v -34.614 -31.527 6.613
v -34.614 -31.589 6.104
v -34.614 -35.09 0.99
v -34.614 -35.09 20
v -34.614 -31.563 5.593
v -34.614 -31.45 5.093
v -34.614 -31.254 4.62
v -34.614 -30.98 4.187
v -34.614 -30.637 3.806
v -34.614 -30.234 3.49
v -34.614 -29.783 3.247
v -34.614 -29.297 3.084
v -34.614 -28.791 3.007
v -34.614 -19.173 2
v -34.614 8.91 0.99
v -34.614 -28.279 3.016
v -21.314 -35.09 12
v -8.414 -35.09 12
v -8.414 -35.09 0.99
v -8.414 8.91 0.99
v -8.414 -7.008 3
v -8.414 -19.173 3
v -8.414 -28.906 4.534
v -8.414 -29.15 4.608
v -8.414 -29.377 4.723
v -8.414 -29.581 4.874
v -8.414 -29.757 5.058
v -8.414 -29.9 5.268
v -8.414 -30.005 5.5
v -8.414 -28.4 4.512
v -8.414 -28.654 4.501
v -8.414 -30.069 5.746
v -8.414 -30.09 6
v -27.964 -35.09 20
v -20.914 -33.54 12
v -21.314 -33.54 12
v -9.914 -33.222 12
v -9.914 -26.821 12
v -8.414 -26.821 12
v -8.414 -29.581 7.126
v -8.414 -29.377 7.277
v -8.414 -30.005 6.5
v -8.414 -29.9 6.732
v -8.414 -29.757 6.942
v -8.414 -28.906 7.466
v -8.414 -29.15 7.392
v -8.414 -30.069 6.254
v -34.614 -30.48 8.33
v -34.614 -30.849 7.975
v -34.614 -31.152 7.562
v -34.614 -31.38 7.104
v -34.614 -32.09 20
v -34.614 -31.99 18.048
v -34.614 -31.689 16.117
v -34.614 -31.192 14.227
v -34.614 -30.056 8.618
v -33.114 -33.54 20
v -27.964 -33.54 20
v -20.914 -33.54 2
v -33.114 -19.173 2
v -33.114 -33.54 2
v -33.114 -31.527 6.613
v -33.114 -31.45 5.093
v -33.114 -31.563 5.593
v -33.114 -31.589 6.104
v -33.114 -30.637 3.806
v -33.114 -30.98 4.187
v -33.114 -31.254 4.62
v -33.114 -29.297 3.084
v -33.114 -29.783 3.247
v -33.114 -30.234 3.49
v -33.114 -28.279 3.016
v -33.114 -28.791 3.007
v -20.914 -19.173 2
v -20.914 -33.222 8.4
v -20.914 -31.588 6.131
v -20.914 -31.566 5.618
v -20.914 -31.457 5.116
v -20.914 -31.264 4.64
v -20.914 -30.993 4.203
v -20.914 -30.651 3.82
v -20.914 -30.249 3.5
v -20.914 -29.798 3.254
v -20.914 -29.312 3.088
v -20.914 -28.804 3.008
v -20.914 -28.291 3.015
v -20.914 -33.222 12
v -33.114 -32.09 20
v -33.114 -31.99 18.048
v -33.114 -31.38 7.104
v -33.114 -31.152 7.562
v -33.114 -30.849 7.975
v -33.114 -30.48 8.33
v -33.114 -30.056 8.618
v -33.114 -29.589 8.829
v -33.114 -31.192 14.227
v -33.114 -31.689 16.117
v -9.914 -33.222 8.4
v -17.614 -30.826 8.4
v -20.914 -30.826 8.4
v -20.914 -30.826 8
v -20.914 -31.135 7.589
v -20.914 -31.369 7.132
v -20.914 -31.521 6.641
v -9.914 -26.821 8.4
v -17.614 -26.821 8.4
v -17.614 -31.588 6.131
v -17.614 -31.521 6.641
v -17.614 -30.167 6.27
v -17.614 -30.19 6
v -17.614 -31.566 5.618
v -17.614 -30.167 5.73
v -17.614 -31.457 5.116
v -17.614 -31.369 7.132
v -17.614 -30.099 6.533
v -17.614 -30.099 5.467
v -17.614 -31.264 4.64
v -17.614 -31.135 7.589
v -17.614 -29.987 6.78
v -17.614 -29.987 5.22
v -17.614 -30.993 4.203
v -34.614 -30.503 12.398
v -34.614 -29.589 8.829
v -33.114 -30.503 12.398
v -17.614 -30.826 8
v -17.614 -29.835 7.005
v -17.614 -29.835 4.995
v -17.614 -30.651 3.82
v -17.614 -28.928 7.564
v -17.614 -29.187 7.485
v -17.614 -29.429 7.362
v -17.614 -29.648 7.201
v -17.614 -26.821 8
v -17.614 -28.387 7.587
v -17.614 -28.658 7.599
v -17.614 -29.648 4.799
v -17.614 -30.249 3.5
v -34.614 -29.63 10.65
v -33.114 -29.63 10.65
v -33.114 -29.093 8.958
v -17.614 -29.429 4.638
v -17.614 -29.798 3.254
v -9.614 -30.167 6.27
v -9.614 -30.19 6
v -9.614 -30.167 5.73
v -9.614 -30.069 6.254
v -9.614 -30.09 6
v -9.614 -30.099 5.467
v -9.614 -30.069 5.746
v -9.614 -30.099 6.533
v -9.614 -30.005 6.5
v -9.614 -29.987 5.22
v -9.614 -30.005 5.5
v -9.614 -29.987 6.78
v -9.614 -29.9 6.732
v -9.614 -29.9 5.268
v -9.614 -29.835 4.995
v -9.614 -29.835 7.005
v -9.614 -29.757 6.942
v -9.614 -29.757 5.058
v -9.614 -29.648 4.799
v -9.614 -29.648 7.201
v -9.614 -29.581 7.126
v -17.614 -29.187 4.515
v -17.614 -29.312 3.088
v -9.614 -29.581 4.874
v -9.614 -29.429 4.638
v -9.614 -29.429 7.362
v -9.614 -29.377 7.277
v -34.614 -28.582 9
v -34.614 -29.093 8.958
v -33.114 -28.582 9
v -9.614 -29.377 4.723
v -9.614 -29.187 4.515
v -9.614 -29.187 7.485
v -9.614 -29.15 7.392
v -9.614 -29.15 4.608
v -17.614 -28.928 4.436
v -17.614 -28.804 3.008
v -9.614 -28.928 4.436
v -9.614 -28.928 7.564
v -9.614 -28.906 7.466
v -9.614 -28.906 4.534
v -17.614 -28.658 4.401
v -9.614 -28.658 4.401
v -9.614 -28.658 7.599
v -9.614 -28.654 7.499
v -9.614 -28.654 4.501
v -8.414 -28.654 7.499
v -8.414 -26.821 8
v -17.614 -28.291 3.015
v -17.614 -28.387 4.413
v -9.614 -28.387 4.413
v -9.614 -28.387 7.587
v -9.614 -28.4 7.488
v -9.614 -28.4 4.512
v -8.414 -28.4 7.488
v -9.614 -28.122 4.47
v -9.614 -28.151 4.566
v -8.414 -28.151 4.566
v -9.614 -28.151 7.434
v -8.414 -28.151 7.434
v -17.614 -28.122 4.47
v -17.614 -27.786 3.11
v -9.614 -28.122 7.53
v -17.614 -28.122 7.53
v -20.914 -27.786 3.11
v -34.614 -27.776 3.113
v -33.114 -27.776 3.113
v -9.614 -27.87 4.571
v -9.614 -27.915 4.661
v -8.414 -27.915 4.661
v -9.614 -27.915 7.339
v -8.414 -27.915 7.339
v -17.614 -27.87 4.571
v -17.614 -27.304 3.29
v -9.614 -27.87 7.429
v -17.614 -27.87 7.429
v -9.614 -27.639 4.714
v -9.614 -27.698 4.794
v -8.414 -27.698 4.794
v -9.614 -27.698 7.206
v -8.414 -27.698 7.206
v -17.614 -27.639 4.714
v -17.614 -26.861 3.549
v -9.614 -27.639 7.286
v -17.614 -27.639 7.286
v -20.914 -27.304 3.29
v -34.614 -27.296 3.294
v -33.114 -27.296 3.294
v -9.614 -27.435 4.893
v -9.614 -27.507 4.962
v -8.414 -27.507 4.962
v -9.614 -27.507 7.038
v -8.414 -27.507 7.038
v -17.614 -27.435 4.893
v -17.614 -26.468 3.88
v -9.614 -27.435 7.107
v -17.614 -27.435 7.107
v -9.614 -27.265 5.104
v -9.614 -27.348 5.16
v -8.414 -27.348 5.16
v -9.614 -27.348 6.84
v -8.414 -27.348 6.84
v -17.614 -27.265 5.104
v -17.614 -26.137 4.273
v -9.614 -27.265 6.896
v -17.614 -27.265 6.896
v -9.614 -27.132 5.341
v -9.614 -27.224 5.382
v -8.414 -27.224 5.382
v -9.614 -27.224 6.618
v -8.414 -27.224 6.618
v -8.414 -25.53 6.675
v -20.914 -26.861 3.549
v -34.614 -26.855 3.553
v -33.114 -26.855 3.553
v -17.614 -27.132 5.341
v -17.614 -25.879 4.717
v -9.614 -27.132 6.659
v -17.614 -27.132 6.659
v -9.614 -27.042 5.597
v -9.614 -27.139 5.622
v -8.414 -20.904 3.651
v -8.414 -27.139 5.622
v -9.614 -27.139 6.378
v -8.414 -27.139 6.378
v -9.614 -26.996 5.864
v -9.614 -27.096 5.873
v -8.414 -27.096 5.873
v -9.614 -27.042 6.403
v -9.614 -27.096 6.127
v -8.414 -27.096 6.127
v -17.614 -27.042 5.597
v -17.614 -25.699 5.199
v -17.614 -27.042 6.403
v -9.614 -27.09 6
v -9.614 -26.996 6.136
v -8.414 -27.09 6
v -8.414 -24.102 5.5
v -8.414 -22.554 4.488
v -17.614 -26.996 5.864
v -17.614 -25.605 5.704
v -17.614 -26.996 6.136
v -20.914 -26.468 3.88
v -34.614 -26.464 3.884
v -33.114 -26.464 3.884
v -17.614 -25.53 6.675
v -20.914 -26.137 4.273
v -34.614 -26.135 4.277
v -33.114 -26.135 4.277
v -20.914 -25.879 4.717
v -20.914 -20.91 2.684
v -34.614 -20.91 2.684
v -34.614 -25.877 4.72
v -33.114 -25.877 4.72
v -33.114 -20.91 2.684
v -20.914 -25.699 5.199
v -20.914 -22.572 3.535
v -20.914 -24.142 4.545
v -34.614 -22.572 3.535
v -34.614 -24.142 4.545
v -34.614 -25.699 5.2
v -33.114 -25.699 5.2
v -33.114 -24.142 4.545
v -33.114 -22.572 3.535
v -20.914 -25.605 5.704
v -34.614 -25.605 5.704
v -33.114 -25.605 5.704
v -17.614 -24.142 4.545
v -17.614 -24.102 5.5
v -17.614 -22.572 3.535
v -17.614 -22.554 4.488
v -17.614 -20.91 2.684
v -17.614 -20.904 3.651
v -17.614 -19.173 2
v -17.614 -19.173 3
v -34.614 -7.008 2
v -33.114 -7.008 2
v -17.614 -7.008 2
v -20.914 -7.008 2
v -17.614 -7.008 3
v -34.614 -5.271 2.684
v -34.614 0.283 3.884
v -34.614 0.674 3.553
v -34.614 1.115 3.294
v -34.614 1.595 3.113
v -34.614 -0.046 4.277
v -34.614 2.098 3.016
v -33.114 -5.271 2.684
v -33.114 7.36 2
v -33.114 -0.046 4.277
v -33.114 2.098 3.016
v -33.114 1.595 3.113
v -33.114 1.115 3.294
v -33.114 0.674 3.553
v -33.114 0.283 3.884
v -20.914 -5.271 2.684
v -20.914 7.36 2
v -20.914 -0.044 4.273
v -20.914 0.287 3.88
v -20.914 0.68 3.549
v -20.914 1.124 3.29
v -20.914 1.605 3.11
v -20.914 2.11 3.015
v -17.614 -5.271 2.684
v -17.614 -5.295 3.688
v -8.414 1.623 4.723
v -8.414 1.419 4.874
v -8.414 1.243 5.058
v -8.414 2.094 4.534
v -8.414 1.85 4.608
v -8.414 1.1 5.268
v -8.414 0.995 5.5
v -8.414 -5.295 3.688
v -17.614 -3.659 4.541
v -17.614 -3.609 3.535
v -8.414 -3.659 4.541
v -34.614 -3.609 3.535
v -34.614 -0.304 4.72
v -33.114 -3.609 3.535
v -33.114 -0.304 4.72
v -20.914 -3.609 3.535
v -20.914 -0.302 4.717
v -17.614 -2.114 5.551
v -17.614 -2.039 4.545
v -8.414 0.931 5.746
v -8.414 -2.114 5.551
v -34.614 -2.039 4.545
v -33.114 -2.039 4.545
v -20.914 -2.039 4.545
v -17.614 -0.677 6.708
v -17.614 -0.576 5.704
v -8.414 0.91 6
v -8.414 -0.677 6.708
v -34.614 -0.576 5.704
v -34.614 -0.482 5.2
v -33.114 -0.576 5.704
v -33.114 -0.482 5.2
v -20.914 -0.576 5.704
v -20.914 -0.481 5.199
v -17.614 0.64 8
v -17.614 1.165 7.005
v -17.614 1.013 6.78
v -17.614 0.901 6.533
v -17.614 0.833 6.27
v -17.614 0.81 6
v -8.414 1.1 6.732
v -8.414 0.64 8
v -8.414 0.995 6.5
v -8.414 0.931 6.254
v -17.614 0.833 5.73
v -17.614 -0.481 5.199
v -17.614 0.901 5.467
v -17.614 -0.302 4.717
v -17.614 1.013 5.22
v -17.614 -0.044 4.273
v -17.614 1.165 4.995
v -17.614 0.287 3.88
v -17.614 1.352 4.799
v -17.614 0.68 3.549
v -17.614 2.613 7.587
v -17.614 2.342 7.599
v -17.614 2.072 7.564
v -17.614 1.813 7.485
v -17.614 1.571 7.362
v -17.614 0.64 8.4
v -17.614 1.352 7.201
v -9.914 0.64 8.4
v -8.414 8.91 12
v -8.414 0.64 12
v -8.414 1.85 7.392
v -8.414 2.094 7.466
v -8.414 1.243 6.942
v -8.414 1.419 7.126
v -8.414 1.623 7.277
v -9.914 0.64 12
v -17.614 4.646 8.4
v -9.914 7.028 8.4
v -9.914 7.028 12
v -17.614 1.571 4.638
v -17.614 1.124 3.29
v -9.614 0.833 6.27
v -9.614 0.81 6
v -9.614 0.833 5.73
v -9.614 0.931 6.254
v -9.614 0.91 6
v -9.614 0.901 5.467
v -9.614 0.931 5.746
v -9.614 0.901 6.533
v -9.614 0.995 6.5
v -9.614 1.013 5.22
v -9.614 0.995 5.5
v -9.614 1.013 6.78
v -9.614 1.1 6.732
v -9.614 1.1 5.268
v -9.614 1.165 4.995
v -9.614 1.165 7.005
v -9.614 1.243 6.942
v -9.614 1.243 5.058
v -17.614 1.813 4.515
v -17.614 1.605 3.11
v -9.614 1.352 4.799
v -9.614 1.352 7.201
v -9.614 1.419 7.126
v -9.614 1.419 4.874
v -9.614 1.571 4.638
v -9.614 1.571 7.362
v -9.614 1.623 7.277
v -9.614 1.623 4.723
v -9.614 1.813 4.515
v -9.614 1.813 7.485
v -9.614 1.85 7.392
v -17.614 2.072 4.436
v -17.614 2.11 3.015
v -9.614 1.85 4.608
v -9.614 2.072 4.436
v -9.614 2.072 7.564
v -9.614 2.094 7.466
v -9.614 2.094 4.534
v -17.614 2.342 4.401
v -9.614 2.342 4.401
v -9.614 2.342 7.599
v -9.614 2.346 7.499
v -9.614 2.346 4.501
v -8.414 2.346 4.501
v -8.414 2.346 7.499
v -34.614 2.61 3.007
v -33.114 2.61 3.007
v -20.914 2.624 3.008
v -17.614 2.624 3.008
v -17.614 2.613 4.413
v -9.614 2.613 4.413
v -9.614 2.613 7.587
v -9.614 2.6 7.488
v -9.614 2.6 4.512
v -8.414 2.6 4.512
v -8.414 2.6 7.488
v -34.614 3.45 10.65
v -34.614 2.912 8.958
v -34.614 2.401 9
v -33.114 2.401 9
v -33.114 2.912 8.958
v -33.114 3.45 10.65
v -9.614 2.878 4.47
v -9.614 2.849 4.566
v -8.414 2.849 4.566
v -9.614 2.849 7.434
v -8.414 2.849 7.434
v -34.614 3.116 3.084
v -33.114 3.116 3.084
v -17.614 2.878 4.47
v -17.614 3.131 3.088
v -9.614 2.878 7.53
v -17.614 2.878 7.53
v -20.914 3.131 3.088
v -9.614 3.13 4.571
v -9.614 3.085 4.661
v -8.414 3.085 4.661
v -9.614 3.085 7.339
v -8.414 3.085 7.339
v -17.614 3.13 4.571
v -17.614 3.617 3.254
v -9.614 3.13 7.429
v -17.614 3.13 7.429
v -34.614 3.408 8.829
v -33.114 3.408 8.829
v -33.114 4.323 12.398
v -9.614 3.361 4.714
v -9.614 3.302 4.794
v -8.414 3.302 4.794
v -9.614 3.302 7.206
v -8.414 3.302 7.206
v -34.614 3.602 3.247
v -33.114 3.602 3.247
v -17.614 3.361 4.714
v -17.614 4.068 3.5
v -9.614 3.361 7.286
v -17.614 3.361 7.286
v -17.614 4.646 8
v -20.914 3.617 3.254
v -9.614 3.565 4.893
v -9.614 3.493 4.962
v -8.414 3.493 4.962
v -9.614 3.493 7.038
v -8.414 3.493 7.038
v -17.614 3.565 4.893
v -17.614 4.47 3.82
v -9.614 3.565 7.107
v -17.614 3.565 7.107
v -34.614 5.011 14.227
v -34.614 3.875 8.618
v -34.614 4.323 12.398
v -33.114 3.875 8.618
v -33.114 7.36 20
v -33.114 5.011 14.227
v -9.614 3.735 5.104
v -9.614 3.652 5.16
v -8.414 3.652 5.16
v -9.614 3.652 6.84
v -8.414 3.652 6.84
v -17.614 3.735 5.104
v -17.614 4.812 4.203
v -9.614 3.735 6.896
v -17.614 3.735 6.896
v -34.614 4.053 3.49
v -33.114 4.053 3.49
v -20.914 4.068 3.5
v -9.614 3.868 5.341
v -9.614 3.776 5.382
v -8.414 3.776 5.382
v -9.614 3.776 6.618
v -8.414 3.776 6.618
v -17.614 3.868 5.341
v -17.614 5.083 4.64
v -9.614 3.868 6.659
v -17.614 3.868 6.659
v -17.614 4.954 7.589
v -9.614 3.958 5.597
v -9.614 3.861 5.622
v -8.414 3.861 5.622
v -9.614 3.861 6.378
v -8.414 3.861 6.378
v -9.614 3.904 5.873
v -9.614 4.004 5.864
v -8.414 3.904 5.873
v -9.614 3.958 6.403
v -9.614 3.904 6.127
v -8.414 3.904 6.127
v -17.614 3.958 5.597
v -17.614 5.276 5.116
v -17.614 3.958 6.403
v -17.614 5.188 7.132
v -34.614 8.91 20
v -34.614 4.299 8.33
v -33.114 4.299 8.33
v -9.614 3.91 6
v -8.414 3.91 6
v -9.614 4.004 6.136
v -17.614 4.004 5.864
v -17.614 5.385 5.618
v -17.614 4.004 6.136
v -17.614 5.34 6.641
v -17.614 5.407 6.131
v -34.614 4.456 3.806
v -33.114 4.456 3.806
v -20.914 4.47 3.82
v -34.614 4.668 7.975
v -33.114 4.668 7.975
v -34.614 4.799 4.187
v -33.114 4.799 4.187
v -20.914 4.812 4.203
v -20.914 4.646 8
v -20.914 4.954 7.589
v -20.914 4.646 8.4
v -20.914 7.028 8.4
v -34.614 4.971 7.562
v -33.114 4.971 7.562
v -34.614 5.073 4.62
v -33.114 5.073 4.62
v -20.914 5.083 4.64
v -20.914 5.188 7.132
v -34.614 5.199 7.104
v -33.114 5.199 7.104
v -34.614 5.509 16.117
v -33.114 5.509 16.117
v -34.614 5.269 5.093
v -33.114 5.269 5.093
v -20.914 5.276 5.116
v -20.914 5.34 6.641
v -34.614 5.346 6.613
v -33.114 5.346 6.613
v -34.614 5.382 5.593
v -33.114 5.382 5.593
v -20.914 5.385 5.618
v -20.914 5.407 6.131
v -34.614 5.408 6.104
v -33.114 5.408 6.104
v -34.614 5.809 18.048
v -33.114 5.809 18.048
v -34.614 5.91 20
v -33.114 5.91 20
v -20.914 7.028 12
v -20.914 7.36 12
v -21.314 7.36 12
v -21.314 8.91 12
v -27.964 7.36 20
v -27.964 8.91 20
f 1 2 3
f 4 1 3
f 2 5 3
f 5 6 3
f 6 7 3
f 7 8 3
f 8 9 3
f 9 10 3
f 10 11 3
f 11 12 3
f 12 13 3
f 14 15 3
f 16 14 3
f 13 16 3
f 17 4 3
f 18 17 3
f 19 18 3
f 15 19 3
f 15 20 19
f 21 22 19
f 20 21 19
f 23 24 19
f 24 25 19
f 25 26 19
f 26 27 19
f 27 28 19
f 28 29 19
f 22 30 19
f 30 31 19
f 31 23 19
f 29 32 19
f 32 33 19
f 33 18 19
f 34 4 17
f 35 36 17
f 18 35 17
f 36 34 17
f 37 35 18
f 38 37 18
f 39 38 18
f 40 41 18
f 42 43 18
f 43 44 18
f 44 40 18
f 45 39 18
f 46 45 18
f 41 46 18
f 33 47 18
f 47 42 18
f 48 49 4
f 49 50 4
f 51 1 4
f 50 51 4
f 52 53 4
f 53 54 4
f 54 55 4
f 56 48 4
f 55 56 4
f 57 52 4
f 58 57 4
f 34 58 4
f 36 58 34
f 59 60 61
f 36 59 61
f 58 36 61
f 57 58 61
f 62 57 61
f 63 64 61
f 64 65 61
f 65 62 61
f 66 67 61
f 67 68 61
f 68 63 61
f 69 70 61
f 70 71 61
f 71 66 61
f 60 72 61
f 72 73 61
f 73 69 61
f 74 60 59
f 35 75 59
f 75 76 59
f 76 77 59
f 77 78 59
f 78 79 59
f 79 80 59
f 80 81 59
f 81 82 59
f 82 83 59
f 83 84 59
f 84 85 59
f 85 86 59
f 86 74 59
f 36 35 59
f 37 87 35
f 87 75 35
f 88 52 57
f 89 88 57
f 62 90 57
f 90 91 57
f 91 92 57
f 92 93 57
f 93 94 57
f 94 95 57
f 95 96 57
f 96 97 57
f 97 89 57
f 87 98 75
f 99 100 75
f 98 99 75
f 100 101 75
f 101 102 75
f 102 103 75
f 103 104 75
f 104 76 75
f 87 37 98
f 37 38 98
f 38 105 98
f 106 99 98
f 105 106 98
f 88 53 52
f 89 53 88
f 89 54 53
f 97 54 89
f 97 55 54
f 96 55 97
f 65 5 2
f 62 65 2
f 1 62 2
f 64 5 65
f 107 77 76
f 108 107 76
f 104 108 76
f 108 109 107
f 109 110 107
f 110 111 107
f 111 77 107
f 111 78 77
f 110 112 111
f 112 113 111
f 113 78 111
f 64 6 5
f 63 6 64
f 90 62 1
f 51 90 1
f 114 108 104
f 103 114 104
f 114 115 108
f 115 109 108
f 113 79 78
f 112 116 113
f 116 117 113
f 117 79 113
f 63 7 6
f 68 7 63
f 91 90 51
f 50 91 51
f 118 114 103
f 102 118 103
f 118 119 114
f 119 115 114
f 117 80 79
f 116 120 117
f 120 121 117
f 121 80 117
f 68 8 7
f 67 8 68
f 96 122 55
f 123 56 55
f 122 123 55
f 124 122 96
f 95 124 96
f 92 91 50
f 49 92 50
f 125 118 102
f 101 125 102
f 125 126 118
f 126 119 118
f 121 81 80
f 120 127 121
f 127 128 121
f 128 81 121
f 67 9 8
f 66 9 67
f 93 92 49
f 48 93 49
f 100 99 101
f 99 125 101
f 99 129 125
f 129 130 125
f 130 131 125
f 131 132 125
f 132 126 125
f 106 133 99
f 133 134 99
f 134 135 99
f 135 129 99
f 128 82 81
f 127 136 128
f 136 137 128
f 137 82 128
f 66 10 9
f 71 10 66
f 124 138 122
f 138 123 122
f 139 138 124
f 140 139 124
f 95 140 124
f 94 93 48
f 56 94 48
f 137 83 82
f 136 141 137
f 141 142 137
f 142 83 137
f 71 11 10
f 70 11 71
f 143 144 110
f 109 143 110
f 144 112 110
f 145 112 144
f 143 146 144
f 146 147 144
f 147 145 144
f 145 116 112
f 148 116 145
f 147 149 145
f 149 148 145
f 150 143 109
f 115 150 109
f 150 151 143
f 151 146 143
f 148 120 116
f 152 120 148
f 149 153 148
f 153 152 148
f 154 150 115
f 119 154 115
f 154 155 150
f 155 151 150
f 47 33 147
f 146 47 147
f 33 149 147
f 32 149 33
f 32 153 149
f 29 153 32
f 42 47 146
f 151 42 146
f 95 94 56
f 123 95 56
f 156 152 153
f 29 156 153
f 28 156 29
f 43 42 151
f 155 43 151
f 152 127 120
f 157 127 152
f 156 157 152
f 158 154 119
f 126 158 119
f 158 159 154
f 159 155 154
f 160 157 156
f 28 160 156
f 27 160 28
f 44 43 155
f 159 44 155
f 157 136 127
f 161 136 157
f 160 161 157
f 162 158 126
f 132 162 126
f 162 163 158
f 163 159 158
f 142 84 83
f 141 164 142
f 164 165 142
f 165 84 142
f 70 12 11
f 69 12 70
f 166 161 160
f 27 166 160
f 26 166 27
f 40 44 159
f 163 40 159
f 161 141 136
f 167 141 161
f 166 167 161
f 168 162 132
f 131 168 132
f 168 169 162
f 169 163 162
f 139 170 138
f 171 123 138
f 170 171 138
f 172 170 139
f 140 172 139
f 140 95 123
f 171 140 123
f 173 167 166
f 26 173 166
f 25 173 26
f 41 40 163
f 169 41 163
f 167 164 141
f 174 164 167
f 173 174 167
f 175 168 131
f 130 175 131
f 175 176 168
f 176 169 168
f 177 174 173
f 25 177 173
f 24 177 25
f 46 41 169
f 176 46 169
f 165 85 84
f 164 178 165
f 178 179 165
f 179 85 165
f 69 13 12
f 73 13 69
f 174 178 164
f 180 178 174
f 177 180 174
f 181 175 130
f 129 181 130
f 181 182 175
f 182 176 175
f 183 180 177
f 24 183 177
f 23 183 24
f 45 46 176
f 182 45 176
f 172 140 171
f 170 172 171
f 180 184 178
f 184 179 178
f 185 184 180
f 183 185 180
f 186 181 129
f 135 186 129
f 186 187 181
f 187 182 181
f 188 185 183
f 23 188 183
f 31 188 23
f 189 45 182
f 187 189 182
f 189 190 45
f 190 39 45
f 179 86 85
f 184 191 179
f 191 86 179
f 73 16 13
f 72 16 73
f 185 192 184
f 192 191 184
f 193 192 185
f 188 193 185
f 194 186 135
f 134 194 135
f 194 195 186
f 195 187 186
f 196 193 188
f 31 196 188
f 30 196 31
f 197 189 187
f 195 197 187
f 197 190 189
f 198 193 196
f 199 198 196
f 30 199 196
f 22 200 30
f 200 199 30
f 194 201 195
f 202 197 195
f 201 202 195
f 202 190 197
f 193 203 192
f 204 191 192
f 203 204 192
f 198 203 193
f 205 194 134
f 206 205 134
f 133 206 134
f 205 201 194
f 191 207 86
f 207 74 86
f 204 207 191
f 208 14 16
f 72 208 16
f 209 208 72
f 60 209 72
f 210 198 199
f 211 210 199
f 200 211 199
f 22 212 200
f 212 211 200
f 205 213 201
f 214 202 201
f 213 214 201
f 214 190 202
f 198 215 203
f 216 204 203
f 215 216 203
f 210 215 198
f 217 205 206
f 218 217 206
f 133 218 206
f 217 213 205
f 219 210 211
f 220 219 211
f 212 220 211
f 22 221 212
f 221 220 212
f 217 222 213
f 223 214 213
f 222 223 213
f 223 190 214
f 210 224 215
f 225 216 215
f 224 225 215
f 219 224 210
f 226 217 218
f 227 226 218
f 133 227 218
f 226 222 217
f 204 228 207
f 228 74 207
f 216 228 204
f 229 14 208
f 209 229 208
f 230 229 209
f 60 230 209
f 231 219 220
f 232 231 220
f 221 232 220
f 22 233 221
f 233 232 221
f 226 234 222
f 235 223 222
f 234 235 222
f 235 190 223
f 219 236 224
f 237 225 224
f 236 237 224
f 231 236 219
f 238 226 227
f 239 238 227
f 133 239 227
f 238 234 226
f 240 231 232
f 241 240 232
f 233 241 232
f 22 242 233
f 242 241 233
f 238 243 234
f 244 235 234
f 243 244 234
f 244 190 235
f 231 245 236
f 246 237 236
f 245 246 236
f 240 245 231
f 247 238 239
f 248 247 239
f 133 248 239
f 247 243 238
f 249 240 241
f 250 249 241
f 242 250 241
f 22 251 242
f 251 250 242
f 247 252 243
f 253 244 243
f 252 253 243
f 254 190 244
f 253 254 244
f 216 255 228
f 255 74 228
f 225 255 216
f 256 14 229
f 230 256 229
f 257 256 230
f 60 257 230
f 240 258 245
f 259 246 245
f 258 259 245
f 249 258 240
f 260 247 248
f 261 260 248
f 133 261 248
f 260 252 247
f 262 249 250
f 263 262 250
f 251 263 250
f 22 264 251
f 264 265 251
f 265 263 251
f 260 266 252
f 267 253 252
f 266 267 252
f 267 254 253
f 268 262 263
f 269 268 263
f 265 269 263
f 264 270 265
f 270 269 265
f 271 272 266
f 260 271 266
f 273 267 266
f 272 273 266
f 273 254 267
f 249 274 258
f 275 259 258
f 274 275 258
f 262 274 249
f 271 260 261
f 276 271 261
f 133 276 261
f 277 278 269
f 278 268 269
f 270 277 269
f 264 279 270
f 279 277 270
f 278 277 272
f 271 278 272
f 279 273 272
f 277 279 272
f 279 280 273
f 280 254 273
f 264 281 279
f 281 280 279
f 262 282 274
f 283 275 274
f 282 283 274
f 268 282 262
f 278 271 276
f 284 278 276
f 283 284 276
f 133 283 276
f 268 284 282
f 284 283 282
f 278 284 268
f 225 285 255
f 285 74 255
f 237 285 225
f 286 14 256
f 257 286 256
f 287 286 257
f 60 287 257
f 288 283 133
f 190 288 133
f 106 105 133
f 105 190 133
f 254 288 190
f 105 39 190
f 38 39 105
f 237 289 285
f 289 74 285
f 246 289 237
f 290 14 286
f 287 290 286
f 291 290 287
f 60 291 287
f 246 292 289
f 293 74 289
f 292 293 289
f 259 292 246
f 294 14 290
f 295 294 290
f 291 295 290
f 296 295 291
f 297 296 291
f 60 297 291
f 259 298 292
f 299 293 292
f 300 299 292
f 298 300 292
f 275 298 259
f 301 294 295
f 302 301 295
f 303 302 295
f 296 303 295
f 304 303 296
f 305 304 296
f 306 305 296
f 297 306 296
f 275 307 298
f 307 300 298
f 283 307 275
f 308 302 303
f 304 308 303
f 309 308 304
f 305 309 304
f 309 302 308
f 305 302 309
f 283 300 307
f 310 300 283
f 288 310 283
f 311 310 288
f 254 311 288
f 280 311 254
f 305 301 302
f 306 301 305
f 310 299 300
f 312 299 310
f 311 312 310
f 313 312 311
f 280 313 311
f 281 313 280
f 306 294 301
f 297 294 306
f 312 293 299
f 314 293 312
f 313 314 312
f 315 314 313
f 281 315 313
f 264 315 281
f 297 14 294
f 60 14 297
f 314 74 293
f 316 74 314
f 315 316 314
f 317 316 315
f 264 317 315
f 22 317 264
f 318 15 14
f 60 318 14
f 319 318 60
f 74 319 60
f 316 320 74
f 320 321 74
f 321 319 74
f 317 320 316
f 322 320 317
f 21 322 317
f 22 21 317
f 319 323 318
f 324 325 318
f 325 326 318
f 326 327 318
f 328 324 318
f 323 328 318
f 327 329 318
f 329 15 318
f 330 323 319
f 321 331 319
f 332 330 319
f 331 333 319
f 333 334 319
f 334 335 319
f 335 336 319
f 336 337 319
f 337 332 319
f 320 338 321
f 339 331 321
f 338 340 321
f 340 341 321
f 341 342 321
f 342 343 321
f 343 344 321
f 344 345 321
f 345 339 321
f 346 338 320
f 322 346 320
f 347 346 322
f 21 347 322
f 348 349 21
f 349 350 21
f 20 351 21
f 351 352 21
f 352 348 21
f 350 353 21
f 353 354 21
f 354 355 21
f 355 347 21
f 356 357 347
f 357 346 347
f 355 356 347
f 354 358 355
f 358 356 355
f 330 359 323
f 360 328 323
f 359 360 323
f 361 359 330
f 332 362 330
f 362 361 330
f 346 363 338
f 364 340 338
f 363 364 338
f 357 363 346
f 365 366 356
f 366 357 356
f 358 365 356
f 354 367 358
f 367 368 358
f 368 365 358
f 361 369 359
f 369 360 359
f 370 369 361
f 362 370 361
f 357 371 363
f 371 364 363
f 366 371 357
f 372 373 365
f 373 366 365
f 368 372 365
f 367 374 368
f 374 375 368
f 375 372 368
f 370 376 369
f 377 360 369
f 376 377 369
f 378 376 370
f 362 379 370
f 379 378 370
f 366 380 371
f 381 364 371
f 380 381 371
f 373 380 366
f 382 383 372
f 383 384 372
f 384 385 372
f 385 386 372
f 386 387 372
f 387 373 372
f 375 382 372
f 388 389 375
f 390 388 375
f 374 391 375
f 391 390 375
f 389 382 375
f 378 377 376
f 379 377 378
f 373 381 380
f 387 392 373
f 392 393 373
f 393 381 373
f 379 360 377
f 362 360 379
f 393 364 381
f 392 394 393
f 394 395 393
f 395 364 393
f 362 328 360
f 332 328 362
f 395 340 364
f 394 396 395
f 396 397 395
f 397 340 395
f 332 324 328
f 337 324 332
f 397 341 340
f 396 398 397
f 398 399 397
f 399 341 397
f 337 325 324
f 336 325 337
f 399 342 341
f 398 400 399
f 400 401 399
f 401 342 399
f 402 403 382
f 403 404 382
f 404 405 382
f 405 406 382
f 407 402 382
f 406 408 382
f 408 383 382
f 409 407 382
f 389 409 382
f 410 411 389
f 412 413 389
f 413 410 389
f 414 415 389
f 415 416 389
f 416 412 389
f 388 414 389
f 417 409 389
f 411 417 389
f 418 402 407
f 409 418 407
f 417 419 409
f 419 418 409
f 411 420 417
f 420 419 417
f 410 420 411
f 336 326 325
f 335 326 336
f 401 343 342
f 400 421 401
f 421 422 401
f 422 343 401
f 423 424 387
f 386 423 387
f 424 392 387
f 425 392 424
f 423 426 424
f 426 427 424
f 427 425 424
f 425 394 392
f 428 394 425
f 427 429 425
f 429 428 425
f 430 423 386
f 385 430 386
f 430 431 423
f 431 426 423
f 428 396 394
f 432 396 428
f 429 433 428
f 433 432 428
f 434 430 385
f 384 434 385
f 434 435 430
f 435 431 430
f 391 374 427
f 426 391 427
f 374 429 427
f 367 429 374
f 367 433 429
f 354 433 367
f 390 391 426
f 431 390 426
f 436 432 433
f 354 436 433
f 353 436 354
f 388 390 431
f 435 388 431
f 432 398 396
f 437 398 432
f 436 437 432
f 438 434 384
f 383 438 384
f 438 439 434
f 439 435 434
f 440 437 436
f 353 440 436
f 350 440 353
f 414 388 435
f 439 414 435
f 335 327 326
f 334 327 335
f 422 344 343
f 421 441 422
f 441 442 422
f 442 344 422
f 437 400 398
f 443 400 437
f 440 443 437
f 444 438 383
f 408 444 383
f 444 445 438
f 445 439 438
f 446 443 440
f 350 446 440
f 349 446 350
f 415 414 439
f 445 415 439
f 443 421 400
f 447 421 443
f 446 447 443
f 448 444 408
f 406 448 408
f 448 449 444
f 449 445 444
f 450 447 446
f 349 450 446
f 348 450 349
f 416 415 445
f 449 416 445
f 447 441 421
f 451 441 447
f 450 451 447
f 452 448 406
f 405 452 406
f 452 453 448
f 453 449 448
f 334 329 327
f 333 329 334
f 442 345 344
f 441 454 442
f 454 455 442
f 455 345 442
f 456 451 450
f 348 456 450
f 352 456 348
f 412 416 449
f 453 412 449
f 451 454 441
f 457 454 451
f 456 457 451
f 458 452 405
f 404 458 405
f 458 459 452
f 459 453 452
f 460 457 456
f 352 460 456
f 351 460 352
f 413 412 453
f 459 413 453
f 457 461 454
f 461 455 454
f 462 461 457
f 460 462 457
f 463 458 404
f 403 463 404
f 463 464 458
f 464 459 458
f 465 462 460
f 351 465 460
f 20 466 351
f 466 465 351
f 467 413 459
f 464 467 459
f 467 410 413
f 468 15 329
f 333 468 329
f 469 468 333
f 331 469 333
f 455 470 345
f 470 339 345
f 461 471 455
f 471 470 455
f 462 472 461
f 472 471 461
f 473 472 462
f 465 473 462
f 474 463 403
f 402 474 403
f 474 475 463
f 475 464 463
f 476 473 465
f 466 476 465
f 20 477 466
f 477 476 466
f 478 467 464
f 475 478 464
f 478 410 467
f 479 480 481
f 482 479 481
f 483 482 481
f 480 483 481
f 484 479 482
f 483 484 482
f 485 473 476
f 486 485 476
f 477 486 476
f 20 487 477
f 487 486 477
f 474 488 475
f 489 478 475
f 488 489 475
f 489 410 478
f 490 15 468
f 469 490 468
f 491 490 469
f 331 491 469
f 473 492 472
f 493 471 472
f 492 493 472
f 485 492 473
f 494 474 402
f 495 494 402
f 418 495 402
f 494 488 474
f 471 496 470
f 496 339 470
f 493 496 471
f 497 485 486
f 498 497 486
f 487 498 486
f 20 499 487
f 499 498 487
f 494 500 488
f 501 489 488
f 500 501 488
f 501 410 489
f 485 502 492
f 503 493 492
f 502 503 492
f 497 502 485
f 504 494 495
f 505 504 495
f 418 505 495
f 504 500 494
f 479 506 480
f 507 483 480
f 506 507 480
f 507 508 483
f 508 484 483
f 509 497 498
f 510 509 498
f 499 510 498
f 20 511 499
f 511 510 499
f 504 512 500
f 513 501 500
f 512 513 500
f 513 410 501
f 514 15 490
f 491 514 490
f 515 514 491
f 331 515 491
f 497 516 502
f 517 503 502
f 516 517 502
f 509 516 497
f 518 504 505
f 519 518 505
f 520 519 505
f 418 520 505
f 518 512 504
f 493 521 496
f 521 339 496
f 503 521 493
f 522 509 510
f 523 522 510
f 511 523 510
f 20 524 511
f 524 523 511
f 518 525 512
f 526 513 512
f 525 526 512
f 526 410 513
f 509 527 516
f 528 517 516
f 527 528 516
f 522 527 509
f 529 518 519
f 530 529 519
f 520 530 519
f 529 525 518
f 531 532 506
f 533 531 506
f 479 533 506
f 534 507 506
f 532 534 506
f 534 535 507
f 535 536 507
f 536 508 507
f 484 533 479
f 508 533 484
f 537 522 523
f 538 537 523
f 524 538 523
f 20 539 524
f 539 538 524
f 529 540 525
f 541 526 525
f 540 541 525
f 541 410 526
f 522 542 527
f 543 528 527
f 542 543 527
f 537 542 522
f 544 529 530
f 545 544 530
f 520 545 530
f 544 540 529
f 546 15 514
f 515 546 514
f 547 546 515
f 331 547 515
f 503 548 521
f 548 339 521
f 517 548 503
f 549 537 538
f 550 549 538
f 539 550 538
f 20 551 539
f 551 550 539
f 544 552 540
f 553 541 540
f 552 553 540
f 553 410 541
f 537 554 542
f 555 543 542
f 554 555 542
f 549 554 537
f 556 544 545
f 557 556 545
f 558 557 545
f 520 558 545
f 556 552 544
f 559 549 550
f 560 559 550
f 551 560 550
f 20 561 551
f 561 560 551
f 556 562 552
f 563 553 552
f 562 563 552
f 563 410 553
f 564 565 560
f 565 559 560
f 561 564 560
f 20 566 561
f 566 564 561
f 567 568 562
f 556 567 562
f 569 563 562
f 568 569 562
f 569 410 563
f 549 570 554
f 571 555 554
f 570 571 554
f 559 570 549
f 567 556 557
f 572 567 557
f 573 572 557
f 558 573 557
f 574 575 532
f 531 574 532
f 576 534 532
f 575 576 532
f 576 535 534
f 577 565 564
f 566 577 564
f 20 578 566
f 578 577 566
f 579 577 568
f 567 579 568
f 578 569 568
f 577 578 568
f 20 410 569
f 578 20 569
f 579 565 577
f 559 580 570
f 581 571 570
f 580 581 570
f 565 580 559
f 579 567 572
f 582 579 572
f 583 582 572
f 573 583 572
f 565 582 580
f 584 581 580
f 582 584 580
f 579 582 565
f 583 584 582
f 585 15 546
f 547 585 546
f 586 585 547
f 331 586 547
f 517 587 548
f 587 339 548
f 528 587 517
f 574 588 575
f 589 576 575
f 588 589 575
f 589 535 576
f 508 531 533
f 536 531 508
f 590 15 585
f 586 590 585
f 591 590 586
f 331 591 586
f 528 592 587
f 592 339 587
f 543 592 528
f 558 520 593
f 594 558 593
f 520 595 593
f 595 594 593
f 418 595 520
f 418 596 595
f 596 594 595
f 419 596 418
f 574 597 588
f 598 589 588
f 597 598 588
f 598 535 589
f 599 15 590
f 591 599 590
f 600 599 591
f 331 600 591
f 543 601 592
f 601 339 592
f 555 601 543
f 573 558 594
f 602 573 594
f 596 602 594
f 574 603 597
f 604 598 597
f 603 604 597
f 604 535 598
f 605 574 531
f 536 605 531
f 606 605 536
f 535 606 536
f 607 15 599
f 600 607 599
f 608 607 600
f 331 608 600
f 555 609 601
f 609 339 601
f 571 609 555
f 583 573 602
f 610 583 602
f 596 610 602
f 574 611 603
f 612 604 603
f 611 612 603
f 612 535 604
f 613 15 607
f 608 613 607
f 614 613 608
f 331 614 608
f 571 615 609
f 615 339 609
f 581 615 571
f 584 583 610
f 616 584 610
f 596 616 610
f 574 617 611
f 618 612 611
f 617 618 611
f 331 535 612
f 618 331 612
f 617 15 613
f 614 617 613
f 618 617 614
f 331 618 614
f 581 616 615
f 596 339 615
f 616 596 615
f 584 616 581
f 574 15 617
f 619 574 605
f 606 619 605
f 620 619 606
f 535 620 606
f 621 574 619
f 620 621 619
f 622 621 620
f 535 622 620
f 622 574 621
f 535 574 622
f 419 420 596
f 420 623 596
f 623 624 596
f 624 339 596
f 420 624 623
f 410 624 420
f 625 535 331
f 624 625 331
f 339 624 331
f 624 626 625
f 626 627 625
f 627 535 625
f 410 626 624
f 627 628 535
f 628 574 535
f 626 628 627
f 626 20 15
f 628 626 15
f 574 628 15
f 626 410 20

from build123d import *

# Parameters (mm, degrees)
CROQUIS1_W               = 25
CROQUIS1_H               = 44
SALIENTE_EXTRUIR1_DEPTH  = 20
CROQUIS2_W               = 11.3
CROQUIS2_H               = 40.4
CORTAR_EXTRUIR1_DEPTH    = 18
CROQUIS3_W               = 10.7
CROQUIS3_H               = 44
CORTAR_EXTRUIR2_DEPTH    = 12
CORTAR_EXTRUIR3_START    = -25
CROQUIS4_R               = 1.6
CORTAR_EXTRUIR3_DEPTH    = 25
CROQUIS5_R               = 3
CORTAR_EXTRUIR4_DEPTH    = 17
CROQUIS7_W               = 10.7
CROQUIS7_H               = 2.131966011
SALIENTE_EXTRUIR2_DEPTH  = 12
CROQUIS9_W               = 11.3
CROQUIS9_H               = 12.16552506
SALIENTE_EXTRUIR3_DEPTH  = 2
SALIENTE_EXTRUIR4_DEPTH  = 2
CORTAR_EXTRUIR10_START   = -25
CROQUIS12_W              = 0.99
CROQUIS12_H              = 44
CORTAR_EXTRUIR10_DEPTH   = 25
CROQUIS13_W              = 8
CROQUIS13_H              = 44
CORTAR_EXTRUIR11_DEPTH   = 11.7
SALIENTE_EXTRUIR5_DEPTH  = 11.7
CROQUIS15_W              = 10.763613753
CROQUIS15_H              = 40.736067978
CORTAR_EXTRUIR12_DEPTH   = 4
CROQUIS16_R              = 1.5
SALIENTE_EXTRUIR6_DEPTH  = 1.2
CORTAR_EXTRUIR13_START   = -44
CORTAR_EXTRUIR13_DEPTH   = 44
CROQUIS18_W              = 0.936386247
CROQUIS18_H              = 40.568033989
CORTAR_EXTRUIR14_DEPTH   = 4
SALIENTE_EXTRUIR7_START  = -9.2
SALIENTE_EXTRUIR7_DEPTH  = 9.2
SALIENTE_EXTRUIR8_START  = -12.9
CROQUIS20_W              = 4
CROQUIS20_H              = 0.236067978
CROQUIS20_H_2            = 0.25
SALIENTE_EXTRUIR8_DEPTH  = 12.9
CROQUIS21_W              = 4
CROQUIS21_H              = 6.401046148
CROQUIS21_H_2            = 6.387114126
SALIENTE_EXTRUIR9_DEPTH  = 1.5
SALIENTE_EXTRUIR10_DEPTH = 0.4
CORTAR_EXTRUIR15_START   = -18
CROQUIS23_W              = 12.2
CROQUIS23_H              = 40.9
CORTAR_EXTRUIR15_DEPTH   = 18


with BuildPart() as part:
    # Croquis1 → Saliente-Extruir1 (new body)
    with BuildSketch(Plane.XY):
        with Locations((-22.114132301, -13.090425532)):
            Rectangle(CROQUIS1_W, CROQUIS1_H)
    extrude(amount=SALIENTE_EXTRUIR1_DEPTH)

    # Croquis2 → Cortar-Extruir1 (cut)
    with BuildSketch(Plane.XY.offset(20)):
        with Locations((-26.964132301, -13.090425532)):
            Rectangle(CROQUIS2_W, CROQUIS2_H)
    extrude(amount=-CORTAR_EXTRUIR1_DEPTH, mode=Mode.SUBTRACT)

    # Croquis3 → Cortar-Extruir2 (cut)
    with BuildSketch(Plane.XY.offset(20)):
        with Locations((-14.964132301, -13.090425532)):
            Rectangle(CROQUIS3_W, CROQUIS3_H)
    extrude(amount=-CORTAR_EXTRUIR2_DEPTH, mode=Mode.SUBTRACT)

    # Croquis4 → Cortar-Extruir3 (cut)
    with BuildSketch(Plane.ZY.offset(34.614132301).offset(CORTAR_EXTRUIR3_START)):
        with Locations((6, 2.409574468)):
            Circle(CROQUIS4_R)
        with Locations((6, -28.590425532)):
            Circle(CROQUIS4_R)
        with BuildLine():
            Line((20, 5.909574468), (20, -32.090425532))
            ThreePointArc((20, -32.090425532), (1, -13.090425532), (20, 5.909574468))
        make_face()
    extrude(amount=CORTAR_EXTRUIR3_DEPTH, mode=Mode.SUBTRACT)

    # Croquis5 → Cortar-Extruir4 (cut)
    with BuildSketch(Plane.ZY.offset(34.614132301)):
        with Locations((6, 2.409574468)):
            Circle(CROQUIS5_R)
        with Locations((6, -28.590425532)):
            Circle(CROQUIS5_R)
    extrude(amount=-CORTAR_EXTRUIR4_DEPTH, mode=Mode.SUBTRACT)

    # Croquis7 → Saliente-Extruir2 (add)
    with BuildSketch(Plane.XY.offset(8)):
        with Locations((-14.964132301, -34.024442527)):
            Rectangle(CROQUIS7_W, CROQUIS7_H)
        with Locations((-14.964132301, 7.843591463)):
            Rectangle(CROQUIS7_W, CROQUIS7_H)
    extrude(amount=SALIENTE_EXTRUIR2_DEPTH)

    # Croquis9 → Saliente-Extruir3 (add)
    with BuildSketch(Plane.XY.offset(2)):
        with Locations((-26.964132301, -13.090425532)):
            Rectangle(CROQUIS9_W, CROQUIS9_H)
    extrude(amount=-SALIENTE_EXTRUIR3_DEPTH)

    # Croquis11 → Saliente-Extruir4 (add)
    with BuildSketch(Plane.ZY.offset(32.614132301)):
        with BuildLine():
            Line((2, -7.007663002), (2, -19.173188062))
            ThreePointArc((2, -19.173188062), (1, -13.090425532), (2, -7.007663002))
        make_face()
    extrude(amount=SALIENTE_EXTRUIR4_DEPTH)

    # Croquis12 → Cortar-Extruir10 (cut)
    with BuildSketch(Plane.ZY.offset(34.614132301).offset(CORTAR_EXTRUIR10_START)):
        with Locations((0.495, -13.090425532)):
            Rectangle(CROQUIS12_W, CROQUIS12_H)
    extrude(amount=CORTAR_EXTRUIR10_DEPTH, mode=Mode.SUBTRACT)

    # Croquis13 → Cortar-Extruir11 (cut)
    with BuildSketch(Plane(origin=(-9.614132301, 0, 0), x_dir=(0, 0, -1), z_dir=(1, 0, 0))):
        with Locations((-16, -13.090425532)):
            Rectangle(CROQUIS13_W, CROQUIS13_H)
    extrude(amount=-CORTAR_EXTRUIR11_DEPTH, mode=Mode.SUBTRACT)

    # Croquis14 → Saliente-Extruir5 (add)
    with BuildSketch(Plane(origin=(-21.314132301, 0, 0), x_dir=(0, 0, -1), z_dir=(1, 0, 0))):
        with BuildLine():
            Line((-2, -19.173188062), (-2, -7.007663002))
            ThreePointArc((-2, -7.007663002), (-1, -13.090425532), (-2, -19.173188062))
        make_face()
    extrude(amount=SALIENTE_EXTRUIR5_DEPTH)

    # Croquis15 → Cortar-Extruir12 (cut)
    with BuildSketch(Plane.XY.offset(12)):
        with Locations((-14.995939178, -13.090425532)):
            Rectangle(CROQUIS15_W, CROQUIS15_H)
    extrude(amount=-CORTAR_EXTRUIR12_DEPTH, mode=Mode.SUBTRACT)

    # Croquis16 → Saliente-Extruir6 (add)
    with BuildSketch(Plane(origin=(-9.614132301, 0, 0), x_dir=(0, 0, -1), z_dir=(1, 0, 0))):
        with BuildLine():
            Line((-8, -27.821345395), (-8, -33.458459521))
            Line((-8, -33.458459521), (-12, -33.458459521))
            Line((-12, -33.458459521), (-12, -35.090425532))
            Line((-12, -35.090425532), (-0.99, -35.090425532))
            Line((-0.99, -35.090425532), (-0.99, 8.909574468))
            Line((-0.99, 8.909574468), (-12, 8.909574468))
            Line((-12, 8.909574468), (-12, 7.277608457))
            Line((-12, 7.277608457), (-8, 7.277608457))
            Line((-8, 7.277608457), (-8, 1.640494331))
            ThreePointArc((-8, 1.640494331), (-4.389181434, -2.259804881), (-2, -7.007663002))
            Line((-2, -7.007663002), (-2, -19.173188062))
            ThreePointArc((-2, -19.173188062), (-4.389181434, -23.921046183), (-8, -27.821345395))
        make_face()
        with Locations((-6, -28.590425532)):
            Circle(CROQUIS16_R, mode=Mode.SUBTRACT)
        with Locations((-6, 2.409574468)):
            Circle(CROQUIS16_R, mode=Mode.SUBTRACT)
    extrude(amount=SALIENTE_EXTRUIR6_DEPTH)

    # Croquis17 → Cortar-Extruir13 (cut)
    with BuildSketch(Plane.XZ.offset(35.090425532).offset(CORTAR_EXTRUIR13_START)):
        Polygon((-21.314132301, 12), (-21.314132301, 20), (-27.964132301, 20), align=None)
    extrude(amount=CORTAR_EXTRUIR13_DEPTH, mode=Mode.SUBTRACT)

    # Croquis18 → Cortar-Extruir14 (cut)
    with BuildSketch(Plane.XY.offset(12)):
        with Locations((-20.845939178, -13.006408538)):
            Rectangle(CROQUIS18_W, CROQUIS18_H)
    extrude(amount=-CORTAR_EXTRUIR14_DEPTH, mode=Mode.SUBTRACT)

    # Croquis19 → Saliente-Extruir7 (add)
    with BuildSketch(Plane(origin=(-8.414132301, 0, 0), x_dir=(0, 0, -1), z_dir=(1, 0, 0)).offset(SALIENTE_EXTRUIR7_START)):
        with BuildLine():
            Line((-2, -19.173188062), (-2, -7.007663002))
            ThreePointArc((-2, -7.007663002), (-4.389181434, -2.259804881), (-8, 1.640494331))
            Line((-8, 1.640494331), (-8, 0.640494331))
            ThreePointArc((-8, 0.640494331), (-5.026875227, -2.874277954), (-3, -7.007663002))
            Line((-3, -7.007663002), (-3, -19.173188062))
            ThreePointArc((-3, -19.173188062), (-4.972698099, -23.341991528), (-8, -26.821345395))
            Line((-8, -26.821345395), (-8, -27.821345395))
            ThreePointArc((-8, -27.821345395), (-4.389181434, -23.921046183), (-2, -19.173188062))
        make_face()
    extrude(amount=SALIENTE_EXTRUIR7_DEPTH)

    # Croquis20 → Saliente-Extruir8 (add)
    with BuildSketch(Plane(origin=(-8.414132301, 0, 0), x_dir=(0, 0, -1), z_dir=(1, 0, 0)).offset(SALIENTE_EXTRUIR8_START)):
        with Locations((-10, -33.340425532)):
            Rectangle(CROQUIS20_W, CROQUIS20_H)
        with Locations((-10, 7.152608457)):
            Rectangle(CROQUIS20_W, CROQUIS20_H_2)
    extrude(amount=SALIENTE_EXTRUIR8_DEPTH)

    # Croquis21 → Saliente-Extruir9 (add)
    with BuildSketch(Plane(origin=(-8.414132301, 0, 0), x_dir=(0, 0, -1), z_dir=(1, 0, 0))):
        with Locations((-10, -30.021868469)):
            Rectangle(CROQUIS21_W, CROQUIS21_H)
        with Locations((-10, 3.834051394)):
            Rectangle(CROQUIS21_W, CROQUIS21_H_2)
    extrude(amount=-SALIENTE_EXTRUIR9_DEPTH)

    # Croquis22 → Saliente-Extruir10 (add)
    with BuildSketch(Plane.XY.offset(8)):
        Polygon((-9.914132301, 7.027608457), (-21.314132301, 7.027608457), (-21.314132301, 4.645642446), (-17.614132301, 4.645642446), (-17.614132301, 0.640494331), (-9.914132301, 0.640494331), align=None)
        Polygon((-9.914132301, -26.821345395), (-17.614132301, -26.821345395), (-17.614132301, -30.826493509), (-21.314132301, -30.826493509), (-21.314132301, -33.222391543), (-9.914132301, -33.222391543), align=None)
    extrude(amount=SALIENTE_EXTRUIR10_DEPTH)

    # Croquis23 → Cortar-Extruir15 (cut)
    with BuildSketch(Plane.XY.offset(20).offset(CORTAR_EXTRUIR15_START)):
        with Locations((-27.014132301, -13.090425532)):
            Rectangle(CROQUIS23_W, CROQUIS23_H)
    extrude(amount=CORTAR_EXTRUIR15_DEPTH, mode=Mode.SUBTRACT)


solid = part.part
